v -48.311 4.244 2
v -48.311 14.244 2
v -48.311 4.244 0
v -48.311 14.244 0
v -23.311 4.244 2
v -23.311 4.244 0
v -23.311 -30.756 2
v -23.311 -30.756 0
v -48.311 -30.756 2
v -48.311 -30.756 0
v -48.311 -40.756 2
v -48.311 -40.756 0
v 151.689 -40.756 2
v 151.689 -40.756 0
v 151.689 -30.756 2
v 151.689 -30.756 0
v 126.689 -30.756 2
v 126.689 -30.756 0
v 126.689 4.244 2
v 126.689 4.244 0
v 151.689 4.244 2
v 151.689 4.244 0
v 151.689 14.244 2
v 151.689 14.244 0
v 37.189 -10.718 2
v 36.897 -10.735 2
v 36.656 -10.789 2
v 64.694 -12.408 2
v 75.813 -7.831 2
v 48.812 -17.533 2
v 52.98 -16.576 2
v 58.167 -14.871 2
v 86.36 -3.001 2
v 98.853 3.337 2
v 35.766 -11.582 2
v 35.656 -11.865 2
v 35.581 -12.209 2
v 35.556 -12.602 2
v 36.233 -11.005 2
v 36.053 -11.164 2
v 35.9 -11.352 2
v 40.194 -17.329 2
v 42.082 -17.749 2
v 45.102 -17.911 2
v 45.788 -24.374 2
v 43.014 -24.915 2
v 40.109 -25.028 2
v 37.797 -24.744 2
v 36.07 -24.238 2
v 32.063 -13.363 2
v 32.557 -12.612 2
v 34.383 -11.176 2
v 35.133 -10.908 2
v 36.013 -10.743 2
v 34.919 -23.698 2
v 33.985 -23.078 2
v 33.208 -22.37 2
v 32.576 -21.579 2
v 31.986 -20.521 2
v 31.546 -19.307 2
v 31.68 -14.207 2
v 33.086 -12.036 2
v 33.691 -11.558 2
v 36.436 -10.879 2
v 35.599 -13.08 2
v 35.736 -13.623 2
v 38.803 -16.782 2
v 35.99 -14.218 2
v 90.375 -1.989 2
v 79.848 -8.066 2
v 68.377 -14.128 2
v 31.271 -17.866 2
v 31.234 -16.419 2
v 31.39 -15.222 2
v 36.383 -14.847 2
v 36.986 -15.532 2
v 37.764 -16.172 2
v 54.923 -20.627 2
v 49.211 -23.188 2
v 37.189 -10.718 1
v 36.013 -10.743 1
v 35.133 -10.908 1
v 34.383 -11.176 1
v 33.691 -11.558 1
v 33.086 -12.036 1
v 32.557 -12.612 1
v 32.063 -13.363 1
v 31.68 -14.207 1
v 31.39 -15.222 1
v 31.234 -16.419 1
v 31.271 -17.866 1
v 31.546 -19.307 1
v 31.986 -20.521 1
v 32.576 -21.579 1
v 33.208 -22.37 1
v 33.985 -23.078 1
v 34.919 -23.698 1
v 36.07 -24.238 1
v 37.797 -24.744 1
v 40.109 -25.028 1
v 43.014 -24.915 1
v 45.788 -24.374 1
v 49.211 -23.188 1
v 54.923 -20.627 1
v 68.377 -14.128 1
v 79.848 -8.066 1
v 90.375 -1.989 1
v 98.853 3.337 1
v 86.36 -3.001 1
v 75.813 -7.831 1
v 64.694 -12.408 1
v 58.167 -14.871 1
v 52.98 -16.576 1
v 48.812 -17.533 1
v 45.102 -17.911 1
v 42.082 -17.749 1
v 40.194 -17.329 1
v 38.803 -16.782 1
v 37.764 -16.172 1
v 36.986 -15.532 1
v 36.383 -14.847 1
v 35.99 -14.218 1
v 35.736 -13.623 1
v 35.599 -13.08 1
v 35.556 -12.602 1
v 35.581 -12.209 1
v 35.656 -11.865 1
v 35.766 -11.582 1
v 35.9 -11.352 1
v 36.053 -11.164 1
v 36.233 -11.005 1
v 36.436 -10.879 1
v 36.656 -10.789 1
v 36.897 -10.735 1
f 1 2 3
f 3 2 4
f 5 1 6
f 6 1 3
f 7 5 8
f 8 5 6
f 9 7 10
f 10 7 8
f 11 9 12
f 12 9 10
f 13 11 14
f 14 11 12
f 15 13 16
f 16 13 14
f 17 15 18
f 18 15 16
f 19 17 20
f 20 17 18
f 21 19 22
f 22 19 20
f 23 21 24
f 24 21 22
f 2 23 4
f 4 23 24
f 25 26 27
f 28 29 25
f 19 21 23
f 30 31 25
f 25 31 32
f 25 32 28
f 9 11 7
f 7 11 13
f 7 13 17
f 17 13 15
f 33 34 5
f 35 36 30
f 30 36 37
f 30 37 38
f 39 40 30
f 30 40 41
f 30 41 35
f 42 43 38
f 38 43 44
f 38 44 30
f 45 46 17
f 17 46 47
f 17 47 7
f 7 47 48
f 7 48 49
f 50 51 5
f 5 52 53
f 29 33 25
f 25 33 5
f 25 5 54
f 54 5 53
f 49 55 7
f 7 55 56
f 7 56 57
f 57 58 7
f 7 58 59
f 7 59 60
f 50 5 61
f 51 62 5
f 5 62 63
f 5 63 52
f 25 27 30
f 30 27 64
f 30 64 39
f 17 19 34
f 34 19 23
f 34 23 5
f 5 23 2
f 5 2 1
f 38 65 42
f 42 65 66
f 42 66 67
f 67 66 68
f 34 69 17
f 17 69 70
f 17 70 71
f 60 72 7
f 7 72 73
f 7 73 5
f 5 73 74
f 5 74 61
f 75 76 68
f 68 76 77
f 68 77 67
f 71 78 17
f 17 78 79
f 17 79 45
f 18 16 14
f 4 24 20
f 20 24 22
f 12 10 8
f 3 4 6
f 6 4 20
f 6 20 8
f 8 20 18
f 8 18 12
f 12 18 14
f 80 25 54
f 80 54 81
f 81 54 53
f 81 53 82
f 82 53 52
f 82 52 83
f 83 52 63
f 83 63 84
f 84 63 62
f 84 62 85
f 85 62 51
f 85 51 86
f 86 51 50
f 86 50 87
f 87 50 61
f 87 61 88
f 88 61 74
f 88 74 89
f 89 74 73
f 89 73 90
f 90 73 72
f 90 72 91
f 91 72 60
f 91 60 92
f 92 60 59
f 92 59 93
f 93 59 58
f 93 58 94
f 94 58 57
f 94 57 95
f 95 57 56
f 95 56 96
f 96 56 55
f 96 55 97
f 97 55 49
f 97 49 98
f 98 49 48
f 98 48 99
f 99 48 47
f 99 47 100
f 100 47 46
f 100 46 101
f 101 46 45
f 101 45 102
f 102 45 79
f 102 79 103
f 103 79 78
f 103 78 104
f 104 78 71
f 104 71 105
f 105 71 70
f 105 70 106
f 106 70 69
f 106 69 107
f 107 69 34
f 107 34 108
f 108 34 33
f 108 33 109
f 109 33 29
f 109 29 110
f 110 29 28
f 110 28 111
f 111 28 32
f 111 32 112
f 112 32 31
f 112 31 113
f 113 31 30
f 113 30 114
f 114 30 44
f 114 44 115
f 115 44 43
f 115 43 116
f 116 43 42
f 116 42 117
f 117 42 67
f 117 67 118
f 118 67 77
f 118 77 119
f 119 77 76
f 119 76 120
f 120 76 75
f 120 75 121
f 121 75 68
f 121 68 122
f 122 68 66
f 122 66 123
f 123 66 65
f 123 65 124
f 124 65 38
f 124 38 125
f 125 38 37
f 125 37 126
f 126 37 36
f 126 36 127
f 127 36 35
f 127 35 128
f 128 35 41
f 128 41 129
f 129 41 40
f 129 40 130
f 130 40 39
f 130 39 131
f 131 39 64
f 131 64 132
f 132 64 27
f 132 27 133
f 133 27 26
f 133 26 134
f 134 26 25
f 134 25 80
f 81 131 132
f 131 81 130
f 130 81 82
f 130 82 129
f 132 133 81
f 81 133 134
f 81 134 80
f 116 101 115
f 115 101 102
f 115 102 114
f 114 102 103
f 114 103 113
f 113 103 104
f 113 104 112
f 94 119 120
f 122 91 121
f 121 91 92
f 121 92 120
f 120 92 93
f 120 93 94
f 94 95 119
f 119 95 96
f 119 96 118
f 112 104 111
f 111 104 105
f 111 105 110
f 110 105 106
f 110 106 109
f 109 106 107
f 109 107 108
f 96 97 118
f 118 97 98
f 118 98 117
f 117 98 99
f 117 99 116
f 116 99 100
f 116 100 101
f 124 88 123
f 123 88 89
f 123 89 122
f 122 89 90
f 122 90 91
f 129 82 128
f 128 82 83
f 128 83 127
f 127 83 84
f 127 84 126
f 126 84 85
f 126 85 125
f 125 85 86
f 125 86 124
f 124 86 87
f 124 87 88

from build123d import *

# Parameters (mm, degrees)
BOSS_EXTRUDE1_DEPTH = 2
CUT_EXTRUDE1_DEPTH  = 1


with BuildPart() as part:
    # Sketch1 → Boss-Extrude1 (new body)
    with BuildSketch(Plane.XY):
        Polygon((-48.310810811, 14.243974201), (151.689189189, 14.243974201), (151.689189189, 4.243974201), (126.689189189, 4.243974201), (126.689189189, -30.756025799), (151.689189189, -30.756025799), (151.689189189, -40.756025799), (-48.310810811, -40.756025799), (-48.310810811, -30.756025799), (-23.310810811, -30.756025799), (-23.310810811, 4.243974201), (-48.310810811, 4.243974201), align=None)
    extrude(amount=BOSS_EXTRUDE1_DEPTH)

    # Sketch3 → Cut-Extrude1 (cut)
    with BuildSketch(Plane.XY.offset(2)):
        with BuildLine():
            add(Edge.make_bspline(
                [(37.189484824, -10.718294686), (33.474166953, -10.624199422), (35.300627772, -23.216467907), (74.220048032, -9.046257892), (87.664897587, -2.594986042), (98.853365994, 3.337442933)],
                knots=[0, 0, 0, 0, 0.51776511, 0.592619661, 1, 1, 1, 1], degree=3))
            add(Edge.make_bspline(
                [(37.189484824, -10.718294686), (30.815944463, -10.332745105), (29.156875012, -24.169852988), (43.250186434, -25.85327449), (65.190161886, -16.178918043), (83.996504619, -6.384768657), (98.853365994, 3.337442933)],
                knots=[0, 0, 0, 0, 0.163170519, 0.29176393, 0.388322168, 1, 1, 1, 1], degree=3))
        make_face()
    extrude(amount=-CUT_EXTRUDE1_DEPTH, mode=Mode.SUBTRACT)


solid = part.part
